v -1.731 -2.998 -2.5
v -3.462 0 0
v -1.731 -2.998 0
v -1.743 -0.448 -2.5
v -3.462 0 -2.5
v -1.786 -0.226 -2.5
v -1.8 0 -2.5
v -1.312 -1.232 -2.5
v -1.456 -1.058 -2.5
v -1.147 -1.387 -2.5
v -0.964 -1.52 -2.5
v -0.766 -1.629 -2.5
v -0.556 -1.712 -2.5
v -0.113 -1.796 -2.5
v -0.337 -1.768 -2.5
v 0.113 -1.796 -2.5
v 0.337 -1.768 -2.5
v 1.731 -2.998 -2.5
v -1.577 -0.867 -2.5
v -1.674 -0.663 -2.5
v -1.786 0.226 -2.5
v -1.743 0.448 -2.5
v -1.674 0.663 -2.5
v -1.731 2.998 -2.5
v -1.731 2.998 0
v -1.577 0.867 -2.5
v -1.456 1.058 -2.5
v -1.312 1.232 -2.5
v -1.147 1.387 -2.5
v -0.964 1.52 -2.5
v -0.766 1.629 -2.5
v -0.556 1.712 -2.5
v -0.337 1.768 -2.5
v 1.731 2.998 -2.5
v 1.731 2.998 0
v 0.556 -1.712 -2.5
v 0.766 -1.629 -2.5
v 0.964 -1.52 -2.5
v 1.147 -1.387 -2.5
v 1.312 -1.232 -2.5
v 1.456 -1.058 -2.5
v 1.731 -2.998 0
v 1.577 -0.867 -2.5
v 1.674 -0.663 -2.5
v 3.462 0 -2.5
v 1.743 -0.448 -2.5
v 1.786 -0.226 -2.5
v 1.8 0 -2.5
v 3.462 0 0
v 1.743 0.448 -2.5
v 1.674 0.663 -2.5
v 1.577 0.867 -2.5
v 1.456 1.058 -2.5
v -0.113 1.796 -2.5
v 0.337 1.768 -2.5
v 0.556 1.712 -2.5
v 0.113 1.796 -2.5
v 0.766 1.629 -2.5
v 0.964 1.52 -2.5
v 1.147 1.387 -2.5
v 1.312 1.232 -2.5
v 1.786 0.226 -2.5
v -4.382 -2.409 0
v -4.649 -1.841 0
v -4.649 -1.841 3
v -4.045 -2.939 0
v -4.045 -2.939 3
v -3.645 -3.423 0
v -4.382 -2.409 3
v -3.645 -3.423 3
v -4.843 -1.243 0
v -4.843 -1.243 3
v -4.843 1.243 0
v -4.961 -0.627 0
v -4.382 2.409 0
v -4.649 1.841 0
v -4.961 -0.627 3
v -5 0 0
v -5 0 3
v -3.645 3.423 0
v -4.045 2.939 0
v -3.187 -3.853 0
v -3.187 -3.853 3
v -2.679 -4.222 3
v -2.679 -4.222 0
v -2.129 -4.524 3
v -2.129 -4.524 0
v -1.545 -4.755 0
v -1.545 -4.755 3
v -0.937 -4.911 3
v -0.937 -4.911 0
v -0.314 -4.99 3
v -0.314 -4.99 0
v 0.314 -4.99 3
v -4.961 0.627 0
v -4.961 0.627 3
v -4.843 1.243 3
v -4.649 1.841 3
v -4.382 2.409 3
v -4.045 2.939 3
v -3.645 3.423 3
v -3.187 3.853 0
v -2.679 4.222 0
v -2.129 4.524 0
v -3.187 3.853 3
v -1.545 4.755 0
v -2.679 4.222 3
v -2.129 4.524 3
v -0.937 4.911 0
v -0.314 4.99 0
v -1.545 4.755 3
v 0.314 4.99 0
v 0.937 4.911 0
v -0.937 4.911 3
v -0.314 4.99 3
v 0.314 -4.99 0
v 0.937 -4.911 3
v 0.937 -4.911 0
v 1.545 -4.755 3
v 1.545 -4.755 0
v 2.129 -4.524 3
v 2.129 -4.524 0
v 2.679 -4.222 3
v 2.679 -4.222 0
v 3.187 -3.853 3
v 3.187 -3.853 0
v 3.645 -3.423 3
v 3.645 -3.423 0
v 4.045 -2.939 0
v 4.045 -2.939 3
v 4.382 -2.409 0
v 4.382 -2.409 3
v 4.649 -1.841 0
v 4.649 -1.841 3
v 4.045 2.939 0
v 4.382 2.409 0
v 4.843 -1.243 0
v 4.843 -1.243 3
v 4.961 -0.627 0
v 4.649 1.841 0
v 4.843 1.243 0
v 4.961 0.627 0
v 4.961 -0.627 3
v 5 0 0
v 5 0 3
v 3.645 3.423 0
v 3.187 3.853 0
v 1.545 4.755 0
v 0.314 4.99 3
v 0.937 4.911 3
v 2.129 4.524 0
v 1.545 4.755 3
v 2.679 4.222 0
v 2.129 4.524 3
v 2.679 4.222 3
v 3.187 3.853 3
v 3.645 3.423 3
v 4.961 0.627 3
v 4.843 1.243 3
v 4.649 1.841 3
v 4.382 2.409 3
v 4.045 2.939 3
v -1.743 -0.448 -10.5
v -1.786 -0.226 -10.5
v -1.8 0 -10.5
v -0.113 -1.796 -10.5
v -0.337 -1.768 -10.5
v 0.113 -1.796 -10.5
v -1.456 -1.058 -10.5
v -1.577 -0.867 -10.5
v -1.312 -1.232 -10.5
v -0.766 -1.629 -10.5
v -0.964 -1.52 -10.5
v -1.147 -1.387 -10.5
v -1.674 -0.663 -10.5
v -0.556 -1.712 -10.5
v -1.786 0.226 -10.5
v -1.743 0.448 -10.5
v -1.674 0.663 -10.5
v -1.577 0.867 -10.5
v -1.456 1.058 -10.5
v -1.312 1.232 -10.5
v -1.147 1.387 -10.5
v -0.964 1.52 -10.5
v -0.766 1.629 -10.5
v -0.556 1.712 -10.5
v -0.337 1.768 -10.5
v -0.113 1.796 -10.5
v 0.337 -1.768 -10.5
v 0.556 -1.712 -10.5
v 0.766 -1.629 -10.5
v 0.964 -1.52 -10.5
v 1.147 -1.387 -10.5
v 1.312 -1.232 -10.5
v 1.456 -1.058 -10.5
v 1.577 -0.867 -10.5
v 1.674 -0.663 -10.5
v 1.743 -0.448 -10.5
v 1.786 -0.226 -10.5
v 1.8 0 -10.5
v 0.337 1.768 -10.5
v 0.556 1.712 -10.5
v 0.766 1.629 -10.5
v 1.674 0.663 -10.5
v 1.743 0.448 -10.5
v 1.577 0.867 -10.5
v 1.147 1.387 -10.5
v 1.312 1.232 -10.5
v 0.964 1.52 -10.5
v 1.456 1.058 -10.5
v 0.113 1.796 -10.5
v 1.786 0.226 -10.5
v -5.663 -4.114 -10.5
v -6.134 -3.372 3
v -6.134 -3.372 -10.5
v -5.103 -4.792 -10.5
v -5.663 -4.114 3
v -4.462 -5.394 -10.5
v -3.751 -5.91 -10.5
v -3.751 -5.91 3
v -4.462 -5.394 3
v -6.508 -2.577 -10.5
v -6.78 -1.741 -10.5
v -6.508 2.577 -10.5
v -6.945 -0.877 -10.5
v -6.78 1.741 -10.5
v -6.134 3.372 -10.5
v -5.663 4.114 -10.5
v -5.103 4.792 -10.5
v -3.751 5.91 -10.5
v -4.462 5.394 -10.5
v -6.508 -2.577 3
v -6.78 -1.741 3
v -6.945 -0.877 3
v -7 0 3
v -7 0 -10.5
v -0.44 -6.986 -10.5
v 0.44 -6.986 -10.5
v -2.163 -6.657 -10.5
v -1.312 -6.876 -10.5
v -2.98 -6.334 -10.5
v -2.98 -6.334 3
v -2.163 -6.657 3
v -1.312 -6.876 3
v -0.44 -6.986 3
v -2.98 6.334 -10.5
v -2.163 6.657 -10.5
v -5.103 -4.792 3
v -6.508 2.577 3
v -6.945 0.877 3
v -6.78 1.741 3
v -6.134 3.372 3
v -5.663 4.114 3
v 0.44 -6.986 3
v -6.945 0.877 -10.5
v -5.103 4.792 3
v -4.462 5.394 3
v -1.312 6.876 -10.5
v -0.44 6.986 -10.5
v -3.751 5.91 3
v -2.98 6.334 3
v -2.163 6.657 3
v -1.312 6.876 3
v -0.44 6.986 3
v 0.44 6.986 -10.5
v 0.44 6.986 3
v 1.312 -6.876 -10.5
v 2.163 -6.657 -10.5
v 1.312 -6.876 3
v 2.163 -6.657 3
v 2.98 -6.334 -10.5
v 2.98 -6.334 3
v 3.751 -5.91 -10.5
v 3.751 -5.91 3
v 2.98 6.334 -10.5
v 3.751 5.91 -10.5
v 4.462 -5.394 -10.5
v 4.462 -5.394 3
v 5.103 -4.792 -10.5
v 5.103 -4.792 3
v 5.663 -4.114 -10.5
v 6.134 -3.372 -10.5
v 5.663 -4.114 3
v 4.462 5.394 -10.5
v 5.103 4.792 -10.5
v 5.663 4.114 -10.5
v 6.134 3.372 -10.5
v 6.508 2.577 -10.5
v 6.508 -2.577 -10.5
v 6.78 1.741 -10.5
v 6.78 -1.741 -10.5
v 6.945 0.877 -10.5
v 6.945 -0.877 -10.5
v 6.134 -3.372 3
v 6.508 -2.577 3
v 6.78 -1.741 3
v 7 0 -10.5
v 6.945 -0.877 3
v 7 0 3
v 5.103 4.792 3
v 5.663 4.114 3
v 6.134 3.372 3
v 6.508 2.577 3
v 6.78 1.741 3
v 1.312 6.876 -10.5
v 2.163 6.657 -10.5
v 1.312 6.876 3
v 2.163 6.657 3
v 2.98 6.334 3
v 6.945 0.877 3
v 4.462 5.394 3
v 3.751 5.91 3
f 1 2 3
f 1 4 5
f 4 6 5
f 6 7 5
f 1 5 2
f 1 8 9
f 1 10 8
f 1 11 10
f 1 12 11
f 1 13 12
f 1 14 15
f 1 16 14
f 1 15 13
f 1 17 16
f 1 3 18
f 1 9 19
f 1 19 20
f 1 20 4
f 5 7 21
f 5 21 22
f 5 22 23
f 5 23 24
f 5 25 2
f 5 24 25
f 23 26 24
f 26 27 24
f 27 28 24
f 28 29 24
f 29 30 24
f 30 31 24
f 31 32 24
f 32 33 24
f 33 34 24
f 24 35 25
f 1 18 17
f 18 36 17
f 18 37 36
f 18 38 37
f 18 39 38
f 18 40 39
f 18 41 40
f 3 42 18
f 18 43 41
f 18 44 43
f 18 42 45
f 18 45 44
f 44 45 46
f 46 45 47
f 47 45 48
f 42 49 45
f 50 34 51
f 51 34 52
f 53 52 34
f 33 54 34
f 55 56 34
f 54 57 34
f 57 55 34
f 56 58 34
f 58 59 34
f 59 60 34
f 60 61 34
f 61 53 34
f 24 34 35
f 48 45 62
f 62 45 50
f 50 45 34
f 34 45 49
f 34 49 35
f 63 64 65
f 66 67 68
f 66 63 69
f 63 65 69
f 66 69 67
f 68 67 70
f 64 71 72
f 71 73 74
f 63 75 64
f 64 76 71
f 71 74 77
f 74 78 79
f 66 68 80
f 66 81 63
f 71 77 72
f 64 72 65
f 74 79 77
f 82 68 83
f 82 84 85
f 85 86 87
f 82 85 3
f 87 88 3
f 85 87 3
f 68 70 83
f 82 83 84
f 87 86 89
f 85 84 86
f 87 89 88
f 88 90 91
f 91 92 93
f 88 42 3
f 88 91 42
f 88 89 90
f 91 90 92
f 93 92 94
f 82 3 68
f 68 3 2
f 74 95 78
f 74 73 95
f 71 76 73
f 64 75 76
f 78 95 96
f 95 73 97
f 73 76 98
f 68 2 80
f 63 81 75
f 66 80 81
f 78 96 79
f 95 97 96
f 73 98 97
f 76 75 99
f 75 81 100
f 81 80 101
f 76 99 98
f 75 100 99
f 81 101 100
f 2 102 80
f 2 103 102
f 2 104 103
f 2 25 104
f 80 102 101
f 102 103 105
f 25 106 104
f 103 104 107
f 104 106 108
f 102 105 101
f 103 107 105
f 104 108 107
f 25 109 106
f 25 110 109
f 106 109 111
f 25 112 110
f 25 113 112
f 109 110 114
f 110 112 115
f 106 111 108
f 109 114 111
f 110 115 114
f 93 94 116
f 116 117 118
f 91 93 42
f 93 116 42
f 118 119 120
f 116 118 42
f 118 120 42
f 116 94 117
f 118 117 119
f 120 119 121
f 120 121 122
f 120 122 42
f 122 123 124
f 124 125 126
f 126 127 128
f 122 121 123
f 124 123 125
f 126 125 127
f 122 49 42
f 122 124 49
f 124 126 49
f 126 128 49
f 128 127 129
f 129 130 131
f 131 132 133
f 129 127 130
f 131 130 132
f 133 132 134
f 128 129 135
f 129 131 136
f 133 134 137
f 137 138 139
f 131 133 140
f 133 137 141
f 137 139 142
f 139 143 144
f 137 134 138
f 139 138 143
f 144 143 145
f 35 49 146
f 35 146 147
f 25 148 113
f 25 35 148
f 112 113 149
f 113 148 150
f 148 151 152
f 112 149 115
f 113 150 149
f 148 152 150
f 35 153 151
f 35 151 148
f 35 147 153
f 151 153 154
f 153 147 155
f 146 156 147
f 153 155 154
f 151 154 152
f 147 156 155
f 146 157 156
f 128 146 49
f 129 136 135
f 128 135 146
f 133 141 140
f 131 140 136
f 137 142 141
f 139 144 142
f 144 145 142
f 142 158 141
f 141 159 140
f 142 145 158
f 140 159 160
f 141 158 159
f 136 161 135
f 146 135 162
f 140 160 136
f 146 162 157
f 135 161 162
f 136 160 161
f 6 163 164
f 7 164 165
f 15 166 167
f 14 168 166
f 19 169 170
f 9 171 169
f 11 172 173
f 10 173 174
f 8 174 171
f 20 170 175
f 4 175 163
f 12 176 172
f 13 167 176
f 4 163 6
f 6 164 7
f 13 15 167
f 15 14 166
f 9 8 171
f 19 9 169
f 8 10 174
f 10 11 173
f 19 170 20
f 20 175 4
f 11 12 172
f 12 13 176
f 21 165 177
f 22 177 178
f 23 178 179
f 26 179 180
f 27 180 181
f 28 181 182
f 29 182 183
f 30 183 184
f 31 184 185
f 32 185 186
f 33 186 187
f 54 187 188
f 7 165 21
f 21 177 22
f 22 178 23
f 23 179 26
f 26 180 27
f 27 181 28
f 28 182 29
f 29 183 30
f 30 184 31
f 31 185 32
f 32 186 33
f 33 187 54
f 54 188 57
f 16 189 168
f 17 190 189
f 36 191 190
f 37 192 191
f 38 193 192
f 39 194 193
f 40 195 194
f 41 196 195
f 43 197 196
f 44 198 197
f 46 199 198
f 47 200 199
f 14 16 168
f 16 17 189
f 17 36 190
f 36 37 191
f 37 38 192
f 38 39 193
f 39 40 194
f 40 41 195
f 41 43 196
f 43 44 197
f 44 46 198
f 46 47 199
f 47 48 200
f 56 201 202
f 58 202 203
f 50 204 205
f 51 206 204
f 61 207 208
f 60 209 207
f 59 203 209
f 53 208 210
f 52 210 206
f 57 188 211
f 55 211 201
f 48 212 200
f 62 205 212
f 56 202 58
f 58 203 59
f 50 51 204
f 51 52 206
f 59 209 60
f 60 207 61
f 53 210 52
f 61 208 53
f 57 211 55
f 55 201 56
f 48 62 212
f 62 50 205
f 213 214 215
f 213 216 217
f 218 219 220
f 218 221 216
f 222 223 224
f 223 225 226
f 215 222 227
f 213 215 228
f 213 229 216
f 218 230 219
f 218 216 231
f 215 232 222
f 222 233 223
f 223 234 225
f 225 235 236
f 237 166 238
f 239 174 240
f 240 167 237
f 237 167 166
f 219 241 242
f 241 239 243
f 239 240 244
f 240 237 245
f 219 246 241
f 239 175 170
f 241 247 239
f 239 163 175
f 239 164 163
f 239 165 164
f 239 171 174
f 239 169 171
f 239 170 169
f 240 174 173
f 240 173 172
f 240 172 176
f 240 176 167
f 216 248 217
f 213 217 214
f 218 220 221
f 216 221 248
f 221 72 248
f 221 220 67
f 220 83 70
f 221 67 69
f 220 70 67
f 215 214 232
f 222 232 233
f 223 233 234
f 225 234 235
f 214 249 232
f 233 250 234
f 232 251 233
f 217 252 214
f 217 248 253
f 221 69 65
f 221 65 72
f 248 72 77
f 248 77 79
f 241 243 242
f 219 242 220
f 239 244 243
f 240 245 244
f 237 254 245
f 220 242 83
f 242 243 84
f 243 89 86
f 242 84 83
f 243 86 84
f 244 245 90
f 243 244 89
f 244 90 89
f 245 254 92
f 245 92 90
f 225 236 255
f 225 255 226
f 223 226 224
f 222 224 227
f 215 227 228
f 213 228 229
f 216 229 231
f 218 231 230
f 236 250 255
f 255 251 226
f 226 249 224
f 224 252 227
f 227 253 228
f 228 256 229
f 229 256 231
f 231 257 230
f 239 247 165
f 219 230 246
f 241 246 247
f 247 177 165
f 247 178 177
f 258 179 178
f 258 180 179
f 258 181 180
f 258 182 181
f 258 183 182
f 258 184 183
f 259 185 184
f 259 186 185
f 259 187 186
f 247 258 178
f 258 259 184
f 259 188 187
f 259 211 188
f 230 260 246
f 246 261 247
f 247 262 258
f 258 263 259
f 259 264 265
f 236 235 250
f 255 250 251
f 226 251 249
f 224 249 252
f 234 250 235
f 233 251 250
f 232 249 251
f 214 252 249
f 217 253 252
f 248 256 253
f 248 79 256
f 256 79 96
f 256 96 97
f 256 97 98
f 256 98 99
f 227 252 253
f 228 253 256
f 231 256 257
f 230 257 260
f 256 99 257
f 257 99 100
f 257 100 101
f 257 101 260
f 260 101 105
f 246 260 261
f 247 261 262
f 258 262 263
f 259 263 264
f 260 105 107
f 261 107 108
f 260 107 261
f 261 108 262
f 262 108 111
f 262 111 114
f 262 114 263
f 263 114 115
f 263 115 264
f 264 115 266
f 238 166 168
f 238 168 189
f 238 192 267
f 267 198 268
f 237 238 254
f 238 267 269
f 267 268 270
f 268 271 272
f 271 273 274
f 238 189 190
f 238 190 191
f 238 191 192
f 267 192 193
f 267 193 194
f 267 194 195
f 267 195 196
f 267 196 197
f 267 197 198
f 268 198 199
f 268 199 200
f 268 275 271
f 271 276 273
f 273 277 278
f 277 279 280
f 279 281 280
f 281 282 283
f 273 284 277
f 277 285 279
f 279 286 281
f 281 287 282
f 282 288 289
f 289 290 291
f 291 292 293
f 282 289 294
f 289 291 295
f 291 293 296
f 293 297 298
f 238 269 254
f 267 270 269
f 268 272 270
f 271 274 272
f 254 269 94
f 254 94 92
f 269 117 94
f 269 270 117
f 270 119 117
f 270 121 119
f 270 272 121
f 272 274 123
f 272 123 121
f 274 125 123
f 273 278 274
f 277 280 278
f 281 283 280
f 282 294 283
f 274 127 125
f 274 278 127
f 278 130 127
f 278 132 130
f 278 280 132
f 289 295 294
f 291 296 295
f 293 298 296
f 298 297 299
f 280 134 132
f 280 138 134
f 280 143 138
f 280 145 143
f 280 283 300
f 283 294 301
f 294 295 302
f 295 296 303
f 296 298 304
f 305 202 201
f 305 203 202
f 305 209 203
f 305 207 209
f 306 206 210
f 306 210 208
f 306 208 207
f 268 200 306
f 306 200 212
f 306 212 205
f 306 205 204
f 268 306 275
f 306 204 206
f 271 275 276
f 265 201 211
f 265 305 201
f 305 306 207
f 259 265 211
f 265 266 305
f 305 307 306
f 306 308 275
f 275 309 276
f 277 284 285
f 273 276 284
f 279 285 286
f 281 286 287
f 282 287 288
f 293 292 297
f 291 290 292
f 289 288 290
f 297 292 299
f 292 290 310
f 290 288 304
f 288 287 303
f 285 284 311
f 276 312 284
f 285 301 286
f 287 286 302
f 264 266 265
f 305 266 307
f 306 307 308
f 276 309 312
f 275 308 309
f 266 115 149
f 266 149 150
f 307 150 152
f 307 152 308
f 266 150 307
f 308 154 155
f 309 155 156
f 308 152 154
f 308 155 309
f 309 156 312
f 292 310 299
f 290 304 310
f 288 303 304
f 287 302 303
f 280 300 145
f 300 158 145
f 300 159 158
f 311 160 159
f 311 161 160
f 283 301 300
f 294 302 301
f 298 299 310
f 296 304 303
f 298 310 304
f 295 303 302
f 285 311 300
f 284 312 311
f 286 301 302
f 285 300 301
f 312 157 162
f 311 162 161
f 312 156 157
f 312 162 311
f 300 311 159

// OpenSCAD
$fn = 50;

difference() {
	union() {
		translate(v = [0, 0, -10.5]) {
			cylinder(h = 13.5, r = 7.0);
		}
	}
	union() {
		translate(v = [0, 0, 0]) {
			rotate(a = [0, 0, 0]) {
				difference() {
					union() {
						translate(v = [0, 0, -2.5]) {
							linear_extrude(height = 2.5) {
								polygon(points = [[3.4619999999999997, 0.0], [1.7310000000000003, 2.9981799479017264], [-1.7309999999999992, 2.9981799479017264], [-3.4619999999999997, 4.2397272186481365e-16], [-1.7310000000000014, -2.998179947901726], [1.7309999999999977, -2.9981799479017277]]);
							}
						}
					}
					union();
				}
			}
		}
		#cylinder(h = 3, r = 5.0);
		#translate(v = [0, 0, -100.0]) {
			cylinder(h = 200, r = 1.8);
		}
	}
}
